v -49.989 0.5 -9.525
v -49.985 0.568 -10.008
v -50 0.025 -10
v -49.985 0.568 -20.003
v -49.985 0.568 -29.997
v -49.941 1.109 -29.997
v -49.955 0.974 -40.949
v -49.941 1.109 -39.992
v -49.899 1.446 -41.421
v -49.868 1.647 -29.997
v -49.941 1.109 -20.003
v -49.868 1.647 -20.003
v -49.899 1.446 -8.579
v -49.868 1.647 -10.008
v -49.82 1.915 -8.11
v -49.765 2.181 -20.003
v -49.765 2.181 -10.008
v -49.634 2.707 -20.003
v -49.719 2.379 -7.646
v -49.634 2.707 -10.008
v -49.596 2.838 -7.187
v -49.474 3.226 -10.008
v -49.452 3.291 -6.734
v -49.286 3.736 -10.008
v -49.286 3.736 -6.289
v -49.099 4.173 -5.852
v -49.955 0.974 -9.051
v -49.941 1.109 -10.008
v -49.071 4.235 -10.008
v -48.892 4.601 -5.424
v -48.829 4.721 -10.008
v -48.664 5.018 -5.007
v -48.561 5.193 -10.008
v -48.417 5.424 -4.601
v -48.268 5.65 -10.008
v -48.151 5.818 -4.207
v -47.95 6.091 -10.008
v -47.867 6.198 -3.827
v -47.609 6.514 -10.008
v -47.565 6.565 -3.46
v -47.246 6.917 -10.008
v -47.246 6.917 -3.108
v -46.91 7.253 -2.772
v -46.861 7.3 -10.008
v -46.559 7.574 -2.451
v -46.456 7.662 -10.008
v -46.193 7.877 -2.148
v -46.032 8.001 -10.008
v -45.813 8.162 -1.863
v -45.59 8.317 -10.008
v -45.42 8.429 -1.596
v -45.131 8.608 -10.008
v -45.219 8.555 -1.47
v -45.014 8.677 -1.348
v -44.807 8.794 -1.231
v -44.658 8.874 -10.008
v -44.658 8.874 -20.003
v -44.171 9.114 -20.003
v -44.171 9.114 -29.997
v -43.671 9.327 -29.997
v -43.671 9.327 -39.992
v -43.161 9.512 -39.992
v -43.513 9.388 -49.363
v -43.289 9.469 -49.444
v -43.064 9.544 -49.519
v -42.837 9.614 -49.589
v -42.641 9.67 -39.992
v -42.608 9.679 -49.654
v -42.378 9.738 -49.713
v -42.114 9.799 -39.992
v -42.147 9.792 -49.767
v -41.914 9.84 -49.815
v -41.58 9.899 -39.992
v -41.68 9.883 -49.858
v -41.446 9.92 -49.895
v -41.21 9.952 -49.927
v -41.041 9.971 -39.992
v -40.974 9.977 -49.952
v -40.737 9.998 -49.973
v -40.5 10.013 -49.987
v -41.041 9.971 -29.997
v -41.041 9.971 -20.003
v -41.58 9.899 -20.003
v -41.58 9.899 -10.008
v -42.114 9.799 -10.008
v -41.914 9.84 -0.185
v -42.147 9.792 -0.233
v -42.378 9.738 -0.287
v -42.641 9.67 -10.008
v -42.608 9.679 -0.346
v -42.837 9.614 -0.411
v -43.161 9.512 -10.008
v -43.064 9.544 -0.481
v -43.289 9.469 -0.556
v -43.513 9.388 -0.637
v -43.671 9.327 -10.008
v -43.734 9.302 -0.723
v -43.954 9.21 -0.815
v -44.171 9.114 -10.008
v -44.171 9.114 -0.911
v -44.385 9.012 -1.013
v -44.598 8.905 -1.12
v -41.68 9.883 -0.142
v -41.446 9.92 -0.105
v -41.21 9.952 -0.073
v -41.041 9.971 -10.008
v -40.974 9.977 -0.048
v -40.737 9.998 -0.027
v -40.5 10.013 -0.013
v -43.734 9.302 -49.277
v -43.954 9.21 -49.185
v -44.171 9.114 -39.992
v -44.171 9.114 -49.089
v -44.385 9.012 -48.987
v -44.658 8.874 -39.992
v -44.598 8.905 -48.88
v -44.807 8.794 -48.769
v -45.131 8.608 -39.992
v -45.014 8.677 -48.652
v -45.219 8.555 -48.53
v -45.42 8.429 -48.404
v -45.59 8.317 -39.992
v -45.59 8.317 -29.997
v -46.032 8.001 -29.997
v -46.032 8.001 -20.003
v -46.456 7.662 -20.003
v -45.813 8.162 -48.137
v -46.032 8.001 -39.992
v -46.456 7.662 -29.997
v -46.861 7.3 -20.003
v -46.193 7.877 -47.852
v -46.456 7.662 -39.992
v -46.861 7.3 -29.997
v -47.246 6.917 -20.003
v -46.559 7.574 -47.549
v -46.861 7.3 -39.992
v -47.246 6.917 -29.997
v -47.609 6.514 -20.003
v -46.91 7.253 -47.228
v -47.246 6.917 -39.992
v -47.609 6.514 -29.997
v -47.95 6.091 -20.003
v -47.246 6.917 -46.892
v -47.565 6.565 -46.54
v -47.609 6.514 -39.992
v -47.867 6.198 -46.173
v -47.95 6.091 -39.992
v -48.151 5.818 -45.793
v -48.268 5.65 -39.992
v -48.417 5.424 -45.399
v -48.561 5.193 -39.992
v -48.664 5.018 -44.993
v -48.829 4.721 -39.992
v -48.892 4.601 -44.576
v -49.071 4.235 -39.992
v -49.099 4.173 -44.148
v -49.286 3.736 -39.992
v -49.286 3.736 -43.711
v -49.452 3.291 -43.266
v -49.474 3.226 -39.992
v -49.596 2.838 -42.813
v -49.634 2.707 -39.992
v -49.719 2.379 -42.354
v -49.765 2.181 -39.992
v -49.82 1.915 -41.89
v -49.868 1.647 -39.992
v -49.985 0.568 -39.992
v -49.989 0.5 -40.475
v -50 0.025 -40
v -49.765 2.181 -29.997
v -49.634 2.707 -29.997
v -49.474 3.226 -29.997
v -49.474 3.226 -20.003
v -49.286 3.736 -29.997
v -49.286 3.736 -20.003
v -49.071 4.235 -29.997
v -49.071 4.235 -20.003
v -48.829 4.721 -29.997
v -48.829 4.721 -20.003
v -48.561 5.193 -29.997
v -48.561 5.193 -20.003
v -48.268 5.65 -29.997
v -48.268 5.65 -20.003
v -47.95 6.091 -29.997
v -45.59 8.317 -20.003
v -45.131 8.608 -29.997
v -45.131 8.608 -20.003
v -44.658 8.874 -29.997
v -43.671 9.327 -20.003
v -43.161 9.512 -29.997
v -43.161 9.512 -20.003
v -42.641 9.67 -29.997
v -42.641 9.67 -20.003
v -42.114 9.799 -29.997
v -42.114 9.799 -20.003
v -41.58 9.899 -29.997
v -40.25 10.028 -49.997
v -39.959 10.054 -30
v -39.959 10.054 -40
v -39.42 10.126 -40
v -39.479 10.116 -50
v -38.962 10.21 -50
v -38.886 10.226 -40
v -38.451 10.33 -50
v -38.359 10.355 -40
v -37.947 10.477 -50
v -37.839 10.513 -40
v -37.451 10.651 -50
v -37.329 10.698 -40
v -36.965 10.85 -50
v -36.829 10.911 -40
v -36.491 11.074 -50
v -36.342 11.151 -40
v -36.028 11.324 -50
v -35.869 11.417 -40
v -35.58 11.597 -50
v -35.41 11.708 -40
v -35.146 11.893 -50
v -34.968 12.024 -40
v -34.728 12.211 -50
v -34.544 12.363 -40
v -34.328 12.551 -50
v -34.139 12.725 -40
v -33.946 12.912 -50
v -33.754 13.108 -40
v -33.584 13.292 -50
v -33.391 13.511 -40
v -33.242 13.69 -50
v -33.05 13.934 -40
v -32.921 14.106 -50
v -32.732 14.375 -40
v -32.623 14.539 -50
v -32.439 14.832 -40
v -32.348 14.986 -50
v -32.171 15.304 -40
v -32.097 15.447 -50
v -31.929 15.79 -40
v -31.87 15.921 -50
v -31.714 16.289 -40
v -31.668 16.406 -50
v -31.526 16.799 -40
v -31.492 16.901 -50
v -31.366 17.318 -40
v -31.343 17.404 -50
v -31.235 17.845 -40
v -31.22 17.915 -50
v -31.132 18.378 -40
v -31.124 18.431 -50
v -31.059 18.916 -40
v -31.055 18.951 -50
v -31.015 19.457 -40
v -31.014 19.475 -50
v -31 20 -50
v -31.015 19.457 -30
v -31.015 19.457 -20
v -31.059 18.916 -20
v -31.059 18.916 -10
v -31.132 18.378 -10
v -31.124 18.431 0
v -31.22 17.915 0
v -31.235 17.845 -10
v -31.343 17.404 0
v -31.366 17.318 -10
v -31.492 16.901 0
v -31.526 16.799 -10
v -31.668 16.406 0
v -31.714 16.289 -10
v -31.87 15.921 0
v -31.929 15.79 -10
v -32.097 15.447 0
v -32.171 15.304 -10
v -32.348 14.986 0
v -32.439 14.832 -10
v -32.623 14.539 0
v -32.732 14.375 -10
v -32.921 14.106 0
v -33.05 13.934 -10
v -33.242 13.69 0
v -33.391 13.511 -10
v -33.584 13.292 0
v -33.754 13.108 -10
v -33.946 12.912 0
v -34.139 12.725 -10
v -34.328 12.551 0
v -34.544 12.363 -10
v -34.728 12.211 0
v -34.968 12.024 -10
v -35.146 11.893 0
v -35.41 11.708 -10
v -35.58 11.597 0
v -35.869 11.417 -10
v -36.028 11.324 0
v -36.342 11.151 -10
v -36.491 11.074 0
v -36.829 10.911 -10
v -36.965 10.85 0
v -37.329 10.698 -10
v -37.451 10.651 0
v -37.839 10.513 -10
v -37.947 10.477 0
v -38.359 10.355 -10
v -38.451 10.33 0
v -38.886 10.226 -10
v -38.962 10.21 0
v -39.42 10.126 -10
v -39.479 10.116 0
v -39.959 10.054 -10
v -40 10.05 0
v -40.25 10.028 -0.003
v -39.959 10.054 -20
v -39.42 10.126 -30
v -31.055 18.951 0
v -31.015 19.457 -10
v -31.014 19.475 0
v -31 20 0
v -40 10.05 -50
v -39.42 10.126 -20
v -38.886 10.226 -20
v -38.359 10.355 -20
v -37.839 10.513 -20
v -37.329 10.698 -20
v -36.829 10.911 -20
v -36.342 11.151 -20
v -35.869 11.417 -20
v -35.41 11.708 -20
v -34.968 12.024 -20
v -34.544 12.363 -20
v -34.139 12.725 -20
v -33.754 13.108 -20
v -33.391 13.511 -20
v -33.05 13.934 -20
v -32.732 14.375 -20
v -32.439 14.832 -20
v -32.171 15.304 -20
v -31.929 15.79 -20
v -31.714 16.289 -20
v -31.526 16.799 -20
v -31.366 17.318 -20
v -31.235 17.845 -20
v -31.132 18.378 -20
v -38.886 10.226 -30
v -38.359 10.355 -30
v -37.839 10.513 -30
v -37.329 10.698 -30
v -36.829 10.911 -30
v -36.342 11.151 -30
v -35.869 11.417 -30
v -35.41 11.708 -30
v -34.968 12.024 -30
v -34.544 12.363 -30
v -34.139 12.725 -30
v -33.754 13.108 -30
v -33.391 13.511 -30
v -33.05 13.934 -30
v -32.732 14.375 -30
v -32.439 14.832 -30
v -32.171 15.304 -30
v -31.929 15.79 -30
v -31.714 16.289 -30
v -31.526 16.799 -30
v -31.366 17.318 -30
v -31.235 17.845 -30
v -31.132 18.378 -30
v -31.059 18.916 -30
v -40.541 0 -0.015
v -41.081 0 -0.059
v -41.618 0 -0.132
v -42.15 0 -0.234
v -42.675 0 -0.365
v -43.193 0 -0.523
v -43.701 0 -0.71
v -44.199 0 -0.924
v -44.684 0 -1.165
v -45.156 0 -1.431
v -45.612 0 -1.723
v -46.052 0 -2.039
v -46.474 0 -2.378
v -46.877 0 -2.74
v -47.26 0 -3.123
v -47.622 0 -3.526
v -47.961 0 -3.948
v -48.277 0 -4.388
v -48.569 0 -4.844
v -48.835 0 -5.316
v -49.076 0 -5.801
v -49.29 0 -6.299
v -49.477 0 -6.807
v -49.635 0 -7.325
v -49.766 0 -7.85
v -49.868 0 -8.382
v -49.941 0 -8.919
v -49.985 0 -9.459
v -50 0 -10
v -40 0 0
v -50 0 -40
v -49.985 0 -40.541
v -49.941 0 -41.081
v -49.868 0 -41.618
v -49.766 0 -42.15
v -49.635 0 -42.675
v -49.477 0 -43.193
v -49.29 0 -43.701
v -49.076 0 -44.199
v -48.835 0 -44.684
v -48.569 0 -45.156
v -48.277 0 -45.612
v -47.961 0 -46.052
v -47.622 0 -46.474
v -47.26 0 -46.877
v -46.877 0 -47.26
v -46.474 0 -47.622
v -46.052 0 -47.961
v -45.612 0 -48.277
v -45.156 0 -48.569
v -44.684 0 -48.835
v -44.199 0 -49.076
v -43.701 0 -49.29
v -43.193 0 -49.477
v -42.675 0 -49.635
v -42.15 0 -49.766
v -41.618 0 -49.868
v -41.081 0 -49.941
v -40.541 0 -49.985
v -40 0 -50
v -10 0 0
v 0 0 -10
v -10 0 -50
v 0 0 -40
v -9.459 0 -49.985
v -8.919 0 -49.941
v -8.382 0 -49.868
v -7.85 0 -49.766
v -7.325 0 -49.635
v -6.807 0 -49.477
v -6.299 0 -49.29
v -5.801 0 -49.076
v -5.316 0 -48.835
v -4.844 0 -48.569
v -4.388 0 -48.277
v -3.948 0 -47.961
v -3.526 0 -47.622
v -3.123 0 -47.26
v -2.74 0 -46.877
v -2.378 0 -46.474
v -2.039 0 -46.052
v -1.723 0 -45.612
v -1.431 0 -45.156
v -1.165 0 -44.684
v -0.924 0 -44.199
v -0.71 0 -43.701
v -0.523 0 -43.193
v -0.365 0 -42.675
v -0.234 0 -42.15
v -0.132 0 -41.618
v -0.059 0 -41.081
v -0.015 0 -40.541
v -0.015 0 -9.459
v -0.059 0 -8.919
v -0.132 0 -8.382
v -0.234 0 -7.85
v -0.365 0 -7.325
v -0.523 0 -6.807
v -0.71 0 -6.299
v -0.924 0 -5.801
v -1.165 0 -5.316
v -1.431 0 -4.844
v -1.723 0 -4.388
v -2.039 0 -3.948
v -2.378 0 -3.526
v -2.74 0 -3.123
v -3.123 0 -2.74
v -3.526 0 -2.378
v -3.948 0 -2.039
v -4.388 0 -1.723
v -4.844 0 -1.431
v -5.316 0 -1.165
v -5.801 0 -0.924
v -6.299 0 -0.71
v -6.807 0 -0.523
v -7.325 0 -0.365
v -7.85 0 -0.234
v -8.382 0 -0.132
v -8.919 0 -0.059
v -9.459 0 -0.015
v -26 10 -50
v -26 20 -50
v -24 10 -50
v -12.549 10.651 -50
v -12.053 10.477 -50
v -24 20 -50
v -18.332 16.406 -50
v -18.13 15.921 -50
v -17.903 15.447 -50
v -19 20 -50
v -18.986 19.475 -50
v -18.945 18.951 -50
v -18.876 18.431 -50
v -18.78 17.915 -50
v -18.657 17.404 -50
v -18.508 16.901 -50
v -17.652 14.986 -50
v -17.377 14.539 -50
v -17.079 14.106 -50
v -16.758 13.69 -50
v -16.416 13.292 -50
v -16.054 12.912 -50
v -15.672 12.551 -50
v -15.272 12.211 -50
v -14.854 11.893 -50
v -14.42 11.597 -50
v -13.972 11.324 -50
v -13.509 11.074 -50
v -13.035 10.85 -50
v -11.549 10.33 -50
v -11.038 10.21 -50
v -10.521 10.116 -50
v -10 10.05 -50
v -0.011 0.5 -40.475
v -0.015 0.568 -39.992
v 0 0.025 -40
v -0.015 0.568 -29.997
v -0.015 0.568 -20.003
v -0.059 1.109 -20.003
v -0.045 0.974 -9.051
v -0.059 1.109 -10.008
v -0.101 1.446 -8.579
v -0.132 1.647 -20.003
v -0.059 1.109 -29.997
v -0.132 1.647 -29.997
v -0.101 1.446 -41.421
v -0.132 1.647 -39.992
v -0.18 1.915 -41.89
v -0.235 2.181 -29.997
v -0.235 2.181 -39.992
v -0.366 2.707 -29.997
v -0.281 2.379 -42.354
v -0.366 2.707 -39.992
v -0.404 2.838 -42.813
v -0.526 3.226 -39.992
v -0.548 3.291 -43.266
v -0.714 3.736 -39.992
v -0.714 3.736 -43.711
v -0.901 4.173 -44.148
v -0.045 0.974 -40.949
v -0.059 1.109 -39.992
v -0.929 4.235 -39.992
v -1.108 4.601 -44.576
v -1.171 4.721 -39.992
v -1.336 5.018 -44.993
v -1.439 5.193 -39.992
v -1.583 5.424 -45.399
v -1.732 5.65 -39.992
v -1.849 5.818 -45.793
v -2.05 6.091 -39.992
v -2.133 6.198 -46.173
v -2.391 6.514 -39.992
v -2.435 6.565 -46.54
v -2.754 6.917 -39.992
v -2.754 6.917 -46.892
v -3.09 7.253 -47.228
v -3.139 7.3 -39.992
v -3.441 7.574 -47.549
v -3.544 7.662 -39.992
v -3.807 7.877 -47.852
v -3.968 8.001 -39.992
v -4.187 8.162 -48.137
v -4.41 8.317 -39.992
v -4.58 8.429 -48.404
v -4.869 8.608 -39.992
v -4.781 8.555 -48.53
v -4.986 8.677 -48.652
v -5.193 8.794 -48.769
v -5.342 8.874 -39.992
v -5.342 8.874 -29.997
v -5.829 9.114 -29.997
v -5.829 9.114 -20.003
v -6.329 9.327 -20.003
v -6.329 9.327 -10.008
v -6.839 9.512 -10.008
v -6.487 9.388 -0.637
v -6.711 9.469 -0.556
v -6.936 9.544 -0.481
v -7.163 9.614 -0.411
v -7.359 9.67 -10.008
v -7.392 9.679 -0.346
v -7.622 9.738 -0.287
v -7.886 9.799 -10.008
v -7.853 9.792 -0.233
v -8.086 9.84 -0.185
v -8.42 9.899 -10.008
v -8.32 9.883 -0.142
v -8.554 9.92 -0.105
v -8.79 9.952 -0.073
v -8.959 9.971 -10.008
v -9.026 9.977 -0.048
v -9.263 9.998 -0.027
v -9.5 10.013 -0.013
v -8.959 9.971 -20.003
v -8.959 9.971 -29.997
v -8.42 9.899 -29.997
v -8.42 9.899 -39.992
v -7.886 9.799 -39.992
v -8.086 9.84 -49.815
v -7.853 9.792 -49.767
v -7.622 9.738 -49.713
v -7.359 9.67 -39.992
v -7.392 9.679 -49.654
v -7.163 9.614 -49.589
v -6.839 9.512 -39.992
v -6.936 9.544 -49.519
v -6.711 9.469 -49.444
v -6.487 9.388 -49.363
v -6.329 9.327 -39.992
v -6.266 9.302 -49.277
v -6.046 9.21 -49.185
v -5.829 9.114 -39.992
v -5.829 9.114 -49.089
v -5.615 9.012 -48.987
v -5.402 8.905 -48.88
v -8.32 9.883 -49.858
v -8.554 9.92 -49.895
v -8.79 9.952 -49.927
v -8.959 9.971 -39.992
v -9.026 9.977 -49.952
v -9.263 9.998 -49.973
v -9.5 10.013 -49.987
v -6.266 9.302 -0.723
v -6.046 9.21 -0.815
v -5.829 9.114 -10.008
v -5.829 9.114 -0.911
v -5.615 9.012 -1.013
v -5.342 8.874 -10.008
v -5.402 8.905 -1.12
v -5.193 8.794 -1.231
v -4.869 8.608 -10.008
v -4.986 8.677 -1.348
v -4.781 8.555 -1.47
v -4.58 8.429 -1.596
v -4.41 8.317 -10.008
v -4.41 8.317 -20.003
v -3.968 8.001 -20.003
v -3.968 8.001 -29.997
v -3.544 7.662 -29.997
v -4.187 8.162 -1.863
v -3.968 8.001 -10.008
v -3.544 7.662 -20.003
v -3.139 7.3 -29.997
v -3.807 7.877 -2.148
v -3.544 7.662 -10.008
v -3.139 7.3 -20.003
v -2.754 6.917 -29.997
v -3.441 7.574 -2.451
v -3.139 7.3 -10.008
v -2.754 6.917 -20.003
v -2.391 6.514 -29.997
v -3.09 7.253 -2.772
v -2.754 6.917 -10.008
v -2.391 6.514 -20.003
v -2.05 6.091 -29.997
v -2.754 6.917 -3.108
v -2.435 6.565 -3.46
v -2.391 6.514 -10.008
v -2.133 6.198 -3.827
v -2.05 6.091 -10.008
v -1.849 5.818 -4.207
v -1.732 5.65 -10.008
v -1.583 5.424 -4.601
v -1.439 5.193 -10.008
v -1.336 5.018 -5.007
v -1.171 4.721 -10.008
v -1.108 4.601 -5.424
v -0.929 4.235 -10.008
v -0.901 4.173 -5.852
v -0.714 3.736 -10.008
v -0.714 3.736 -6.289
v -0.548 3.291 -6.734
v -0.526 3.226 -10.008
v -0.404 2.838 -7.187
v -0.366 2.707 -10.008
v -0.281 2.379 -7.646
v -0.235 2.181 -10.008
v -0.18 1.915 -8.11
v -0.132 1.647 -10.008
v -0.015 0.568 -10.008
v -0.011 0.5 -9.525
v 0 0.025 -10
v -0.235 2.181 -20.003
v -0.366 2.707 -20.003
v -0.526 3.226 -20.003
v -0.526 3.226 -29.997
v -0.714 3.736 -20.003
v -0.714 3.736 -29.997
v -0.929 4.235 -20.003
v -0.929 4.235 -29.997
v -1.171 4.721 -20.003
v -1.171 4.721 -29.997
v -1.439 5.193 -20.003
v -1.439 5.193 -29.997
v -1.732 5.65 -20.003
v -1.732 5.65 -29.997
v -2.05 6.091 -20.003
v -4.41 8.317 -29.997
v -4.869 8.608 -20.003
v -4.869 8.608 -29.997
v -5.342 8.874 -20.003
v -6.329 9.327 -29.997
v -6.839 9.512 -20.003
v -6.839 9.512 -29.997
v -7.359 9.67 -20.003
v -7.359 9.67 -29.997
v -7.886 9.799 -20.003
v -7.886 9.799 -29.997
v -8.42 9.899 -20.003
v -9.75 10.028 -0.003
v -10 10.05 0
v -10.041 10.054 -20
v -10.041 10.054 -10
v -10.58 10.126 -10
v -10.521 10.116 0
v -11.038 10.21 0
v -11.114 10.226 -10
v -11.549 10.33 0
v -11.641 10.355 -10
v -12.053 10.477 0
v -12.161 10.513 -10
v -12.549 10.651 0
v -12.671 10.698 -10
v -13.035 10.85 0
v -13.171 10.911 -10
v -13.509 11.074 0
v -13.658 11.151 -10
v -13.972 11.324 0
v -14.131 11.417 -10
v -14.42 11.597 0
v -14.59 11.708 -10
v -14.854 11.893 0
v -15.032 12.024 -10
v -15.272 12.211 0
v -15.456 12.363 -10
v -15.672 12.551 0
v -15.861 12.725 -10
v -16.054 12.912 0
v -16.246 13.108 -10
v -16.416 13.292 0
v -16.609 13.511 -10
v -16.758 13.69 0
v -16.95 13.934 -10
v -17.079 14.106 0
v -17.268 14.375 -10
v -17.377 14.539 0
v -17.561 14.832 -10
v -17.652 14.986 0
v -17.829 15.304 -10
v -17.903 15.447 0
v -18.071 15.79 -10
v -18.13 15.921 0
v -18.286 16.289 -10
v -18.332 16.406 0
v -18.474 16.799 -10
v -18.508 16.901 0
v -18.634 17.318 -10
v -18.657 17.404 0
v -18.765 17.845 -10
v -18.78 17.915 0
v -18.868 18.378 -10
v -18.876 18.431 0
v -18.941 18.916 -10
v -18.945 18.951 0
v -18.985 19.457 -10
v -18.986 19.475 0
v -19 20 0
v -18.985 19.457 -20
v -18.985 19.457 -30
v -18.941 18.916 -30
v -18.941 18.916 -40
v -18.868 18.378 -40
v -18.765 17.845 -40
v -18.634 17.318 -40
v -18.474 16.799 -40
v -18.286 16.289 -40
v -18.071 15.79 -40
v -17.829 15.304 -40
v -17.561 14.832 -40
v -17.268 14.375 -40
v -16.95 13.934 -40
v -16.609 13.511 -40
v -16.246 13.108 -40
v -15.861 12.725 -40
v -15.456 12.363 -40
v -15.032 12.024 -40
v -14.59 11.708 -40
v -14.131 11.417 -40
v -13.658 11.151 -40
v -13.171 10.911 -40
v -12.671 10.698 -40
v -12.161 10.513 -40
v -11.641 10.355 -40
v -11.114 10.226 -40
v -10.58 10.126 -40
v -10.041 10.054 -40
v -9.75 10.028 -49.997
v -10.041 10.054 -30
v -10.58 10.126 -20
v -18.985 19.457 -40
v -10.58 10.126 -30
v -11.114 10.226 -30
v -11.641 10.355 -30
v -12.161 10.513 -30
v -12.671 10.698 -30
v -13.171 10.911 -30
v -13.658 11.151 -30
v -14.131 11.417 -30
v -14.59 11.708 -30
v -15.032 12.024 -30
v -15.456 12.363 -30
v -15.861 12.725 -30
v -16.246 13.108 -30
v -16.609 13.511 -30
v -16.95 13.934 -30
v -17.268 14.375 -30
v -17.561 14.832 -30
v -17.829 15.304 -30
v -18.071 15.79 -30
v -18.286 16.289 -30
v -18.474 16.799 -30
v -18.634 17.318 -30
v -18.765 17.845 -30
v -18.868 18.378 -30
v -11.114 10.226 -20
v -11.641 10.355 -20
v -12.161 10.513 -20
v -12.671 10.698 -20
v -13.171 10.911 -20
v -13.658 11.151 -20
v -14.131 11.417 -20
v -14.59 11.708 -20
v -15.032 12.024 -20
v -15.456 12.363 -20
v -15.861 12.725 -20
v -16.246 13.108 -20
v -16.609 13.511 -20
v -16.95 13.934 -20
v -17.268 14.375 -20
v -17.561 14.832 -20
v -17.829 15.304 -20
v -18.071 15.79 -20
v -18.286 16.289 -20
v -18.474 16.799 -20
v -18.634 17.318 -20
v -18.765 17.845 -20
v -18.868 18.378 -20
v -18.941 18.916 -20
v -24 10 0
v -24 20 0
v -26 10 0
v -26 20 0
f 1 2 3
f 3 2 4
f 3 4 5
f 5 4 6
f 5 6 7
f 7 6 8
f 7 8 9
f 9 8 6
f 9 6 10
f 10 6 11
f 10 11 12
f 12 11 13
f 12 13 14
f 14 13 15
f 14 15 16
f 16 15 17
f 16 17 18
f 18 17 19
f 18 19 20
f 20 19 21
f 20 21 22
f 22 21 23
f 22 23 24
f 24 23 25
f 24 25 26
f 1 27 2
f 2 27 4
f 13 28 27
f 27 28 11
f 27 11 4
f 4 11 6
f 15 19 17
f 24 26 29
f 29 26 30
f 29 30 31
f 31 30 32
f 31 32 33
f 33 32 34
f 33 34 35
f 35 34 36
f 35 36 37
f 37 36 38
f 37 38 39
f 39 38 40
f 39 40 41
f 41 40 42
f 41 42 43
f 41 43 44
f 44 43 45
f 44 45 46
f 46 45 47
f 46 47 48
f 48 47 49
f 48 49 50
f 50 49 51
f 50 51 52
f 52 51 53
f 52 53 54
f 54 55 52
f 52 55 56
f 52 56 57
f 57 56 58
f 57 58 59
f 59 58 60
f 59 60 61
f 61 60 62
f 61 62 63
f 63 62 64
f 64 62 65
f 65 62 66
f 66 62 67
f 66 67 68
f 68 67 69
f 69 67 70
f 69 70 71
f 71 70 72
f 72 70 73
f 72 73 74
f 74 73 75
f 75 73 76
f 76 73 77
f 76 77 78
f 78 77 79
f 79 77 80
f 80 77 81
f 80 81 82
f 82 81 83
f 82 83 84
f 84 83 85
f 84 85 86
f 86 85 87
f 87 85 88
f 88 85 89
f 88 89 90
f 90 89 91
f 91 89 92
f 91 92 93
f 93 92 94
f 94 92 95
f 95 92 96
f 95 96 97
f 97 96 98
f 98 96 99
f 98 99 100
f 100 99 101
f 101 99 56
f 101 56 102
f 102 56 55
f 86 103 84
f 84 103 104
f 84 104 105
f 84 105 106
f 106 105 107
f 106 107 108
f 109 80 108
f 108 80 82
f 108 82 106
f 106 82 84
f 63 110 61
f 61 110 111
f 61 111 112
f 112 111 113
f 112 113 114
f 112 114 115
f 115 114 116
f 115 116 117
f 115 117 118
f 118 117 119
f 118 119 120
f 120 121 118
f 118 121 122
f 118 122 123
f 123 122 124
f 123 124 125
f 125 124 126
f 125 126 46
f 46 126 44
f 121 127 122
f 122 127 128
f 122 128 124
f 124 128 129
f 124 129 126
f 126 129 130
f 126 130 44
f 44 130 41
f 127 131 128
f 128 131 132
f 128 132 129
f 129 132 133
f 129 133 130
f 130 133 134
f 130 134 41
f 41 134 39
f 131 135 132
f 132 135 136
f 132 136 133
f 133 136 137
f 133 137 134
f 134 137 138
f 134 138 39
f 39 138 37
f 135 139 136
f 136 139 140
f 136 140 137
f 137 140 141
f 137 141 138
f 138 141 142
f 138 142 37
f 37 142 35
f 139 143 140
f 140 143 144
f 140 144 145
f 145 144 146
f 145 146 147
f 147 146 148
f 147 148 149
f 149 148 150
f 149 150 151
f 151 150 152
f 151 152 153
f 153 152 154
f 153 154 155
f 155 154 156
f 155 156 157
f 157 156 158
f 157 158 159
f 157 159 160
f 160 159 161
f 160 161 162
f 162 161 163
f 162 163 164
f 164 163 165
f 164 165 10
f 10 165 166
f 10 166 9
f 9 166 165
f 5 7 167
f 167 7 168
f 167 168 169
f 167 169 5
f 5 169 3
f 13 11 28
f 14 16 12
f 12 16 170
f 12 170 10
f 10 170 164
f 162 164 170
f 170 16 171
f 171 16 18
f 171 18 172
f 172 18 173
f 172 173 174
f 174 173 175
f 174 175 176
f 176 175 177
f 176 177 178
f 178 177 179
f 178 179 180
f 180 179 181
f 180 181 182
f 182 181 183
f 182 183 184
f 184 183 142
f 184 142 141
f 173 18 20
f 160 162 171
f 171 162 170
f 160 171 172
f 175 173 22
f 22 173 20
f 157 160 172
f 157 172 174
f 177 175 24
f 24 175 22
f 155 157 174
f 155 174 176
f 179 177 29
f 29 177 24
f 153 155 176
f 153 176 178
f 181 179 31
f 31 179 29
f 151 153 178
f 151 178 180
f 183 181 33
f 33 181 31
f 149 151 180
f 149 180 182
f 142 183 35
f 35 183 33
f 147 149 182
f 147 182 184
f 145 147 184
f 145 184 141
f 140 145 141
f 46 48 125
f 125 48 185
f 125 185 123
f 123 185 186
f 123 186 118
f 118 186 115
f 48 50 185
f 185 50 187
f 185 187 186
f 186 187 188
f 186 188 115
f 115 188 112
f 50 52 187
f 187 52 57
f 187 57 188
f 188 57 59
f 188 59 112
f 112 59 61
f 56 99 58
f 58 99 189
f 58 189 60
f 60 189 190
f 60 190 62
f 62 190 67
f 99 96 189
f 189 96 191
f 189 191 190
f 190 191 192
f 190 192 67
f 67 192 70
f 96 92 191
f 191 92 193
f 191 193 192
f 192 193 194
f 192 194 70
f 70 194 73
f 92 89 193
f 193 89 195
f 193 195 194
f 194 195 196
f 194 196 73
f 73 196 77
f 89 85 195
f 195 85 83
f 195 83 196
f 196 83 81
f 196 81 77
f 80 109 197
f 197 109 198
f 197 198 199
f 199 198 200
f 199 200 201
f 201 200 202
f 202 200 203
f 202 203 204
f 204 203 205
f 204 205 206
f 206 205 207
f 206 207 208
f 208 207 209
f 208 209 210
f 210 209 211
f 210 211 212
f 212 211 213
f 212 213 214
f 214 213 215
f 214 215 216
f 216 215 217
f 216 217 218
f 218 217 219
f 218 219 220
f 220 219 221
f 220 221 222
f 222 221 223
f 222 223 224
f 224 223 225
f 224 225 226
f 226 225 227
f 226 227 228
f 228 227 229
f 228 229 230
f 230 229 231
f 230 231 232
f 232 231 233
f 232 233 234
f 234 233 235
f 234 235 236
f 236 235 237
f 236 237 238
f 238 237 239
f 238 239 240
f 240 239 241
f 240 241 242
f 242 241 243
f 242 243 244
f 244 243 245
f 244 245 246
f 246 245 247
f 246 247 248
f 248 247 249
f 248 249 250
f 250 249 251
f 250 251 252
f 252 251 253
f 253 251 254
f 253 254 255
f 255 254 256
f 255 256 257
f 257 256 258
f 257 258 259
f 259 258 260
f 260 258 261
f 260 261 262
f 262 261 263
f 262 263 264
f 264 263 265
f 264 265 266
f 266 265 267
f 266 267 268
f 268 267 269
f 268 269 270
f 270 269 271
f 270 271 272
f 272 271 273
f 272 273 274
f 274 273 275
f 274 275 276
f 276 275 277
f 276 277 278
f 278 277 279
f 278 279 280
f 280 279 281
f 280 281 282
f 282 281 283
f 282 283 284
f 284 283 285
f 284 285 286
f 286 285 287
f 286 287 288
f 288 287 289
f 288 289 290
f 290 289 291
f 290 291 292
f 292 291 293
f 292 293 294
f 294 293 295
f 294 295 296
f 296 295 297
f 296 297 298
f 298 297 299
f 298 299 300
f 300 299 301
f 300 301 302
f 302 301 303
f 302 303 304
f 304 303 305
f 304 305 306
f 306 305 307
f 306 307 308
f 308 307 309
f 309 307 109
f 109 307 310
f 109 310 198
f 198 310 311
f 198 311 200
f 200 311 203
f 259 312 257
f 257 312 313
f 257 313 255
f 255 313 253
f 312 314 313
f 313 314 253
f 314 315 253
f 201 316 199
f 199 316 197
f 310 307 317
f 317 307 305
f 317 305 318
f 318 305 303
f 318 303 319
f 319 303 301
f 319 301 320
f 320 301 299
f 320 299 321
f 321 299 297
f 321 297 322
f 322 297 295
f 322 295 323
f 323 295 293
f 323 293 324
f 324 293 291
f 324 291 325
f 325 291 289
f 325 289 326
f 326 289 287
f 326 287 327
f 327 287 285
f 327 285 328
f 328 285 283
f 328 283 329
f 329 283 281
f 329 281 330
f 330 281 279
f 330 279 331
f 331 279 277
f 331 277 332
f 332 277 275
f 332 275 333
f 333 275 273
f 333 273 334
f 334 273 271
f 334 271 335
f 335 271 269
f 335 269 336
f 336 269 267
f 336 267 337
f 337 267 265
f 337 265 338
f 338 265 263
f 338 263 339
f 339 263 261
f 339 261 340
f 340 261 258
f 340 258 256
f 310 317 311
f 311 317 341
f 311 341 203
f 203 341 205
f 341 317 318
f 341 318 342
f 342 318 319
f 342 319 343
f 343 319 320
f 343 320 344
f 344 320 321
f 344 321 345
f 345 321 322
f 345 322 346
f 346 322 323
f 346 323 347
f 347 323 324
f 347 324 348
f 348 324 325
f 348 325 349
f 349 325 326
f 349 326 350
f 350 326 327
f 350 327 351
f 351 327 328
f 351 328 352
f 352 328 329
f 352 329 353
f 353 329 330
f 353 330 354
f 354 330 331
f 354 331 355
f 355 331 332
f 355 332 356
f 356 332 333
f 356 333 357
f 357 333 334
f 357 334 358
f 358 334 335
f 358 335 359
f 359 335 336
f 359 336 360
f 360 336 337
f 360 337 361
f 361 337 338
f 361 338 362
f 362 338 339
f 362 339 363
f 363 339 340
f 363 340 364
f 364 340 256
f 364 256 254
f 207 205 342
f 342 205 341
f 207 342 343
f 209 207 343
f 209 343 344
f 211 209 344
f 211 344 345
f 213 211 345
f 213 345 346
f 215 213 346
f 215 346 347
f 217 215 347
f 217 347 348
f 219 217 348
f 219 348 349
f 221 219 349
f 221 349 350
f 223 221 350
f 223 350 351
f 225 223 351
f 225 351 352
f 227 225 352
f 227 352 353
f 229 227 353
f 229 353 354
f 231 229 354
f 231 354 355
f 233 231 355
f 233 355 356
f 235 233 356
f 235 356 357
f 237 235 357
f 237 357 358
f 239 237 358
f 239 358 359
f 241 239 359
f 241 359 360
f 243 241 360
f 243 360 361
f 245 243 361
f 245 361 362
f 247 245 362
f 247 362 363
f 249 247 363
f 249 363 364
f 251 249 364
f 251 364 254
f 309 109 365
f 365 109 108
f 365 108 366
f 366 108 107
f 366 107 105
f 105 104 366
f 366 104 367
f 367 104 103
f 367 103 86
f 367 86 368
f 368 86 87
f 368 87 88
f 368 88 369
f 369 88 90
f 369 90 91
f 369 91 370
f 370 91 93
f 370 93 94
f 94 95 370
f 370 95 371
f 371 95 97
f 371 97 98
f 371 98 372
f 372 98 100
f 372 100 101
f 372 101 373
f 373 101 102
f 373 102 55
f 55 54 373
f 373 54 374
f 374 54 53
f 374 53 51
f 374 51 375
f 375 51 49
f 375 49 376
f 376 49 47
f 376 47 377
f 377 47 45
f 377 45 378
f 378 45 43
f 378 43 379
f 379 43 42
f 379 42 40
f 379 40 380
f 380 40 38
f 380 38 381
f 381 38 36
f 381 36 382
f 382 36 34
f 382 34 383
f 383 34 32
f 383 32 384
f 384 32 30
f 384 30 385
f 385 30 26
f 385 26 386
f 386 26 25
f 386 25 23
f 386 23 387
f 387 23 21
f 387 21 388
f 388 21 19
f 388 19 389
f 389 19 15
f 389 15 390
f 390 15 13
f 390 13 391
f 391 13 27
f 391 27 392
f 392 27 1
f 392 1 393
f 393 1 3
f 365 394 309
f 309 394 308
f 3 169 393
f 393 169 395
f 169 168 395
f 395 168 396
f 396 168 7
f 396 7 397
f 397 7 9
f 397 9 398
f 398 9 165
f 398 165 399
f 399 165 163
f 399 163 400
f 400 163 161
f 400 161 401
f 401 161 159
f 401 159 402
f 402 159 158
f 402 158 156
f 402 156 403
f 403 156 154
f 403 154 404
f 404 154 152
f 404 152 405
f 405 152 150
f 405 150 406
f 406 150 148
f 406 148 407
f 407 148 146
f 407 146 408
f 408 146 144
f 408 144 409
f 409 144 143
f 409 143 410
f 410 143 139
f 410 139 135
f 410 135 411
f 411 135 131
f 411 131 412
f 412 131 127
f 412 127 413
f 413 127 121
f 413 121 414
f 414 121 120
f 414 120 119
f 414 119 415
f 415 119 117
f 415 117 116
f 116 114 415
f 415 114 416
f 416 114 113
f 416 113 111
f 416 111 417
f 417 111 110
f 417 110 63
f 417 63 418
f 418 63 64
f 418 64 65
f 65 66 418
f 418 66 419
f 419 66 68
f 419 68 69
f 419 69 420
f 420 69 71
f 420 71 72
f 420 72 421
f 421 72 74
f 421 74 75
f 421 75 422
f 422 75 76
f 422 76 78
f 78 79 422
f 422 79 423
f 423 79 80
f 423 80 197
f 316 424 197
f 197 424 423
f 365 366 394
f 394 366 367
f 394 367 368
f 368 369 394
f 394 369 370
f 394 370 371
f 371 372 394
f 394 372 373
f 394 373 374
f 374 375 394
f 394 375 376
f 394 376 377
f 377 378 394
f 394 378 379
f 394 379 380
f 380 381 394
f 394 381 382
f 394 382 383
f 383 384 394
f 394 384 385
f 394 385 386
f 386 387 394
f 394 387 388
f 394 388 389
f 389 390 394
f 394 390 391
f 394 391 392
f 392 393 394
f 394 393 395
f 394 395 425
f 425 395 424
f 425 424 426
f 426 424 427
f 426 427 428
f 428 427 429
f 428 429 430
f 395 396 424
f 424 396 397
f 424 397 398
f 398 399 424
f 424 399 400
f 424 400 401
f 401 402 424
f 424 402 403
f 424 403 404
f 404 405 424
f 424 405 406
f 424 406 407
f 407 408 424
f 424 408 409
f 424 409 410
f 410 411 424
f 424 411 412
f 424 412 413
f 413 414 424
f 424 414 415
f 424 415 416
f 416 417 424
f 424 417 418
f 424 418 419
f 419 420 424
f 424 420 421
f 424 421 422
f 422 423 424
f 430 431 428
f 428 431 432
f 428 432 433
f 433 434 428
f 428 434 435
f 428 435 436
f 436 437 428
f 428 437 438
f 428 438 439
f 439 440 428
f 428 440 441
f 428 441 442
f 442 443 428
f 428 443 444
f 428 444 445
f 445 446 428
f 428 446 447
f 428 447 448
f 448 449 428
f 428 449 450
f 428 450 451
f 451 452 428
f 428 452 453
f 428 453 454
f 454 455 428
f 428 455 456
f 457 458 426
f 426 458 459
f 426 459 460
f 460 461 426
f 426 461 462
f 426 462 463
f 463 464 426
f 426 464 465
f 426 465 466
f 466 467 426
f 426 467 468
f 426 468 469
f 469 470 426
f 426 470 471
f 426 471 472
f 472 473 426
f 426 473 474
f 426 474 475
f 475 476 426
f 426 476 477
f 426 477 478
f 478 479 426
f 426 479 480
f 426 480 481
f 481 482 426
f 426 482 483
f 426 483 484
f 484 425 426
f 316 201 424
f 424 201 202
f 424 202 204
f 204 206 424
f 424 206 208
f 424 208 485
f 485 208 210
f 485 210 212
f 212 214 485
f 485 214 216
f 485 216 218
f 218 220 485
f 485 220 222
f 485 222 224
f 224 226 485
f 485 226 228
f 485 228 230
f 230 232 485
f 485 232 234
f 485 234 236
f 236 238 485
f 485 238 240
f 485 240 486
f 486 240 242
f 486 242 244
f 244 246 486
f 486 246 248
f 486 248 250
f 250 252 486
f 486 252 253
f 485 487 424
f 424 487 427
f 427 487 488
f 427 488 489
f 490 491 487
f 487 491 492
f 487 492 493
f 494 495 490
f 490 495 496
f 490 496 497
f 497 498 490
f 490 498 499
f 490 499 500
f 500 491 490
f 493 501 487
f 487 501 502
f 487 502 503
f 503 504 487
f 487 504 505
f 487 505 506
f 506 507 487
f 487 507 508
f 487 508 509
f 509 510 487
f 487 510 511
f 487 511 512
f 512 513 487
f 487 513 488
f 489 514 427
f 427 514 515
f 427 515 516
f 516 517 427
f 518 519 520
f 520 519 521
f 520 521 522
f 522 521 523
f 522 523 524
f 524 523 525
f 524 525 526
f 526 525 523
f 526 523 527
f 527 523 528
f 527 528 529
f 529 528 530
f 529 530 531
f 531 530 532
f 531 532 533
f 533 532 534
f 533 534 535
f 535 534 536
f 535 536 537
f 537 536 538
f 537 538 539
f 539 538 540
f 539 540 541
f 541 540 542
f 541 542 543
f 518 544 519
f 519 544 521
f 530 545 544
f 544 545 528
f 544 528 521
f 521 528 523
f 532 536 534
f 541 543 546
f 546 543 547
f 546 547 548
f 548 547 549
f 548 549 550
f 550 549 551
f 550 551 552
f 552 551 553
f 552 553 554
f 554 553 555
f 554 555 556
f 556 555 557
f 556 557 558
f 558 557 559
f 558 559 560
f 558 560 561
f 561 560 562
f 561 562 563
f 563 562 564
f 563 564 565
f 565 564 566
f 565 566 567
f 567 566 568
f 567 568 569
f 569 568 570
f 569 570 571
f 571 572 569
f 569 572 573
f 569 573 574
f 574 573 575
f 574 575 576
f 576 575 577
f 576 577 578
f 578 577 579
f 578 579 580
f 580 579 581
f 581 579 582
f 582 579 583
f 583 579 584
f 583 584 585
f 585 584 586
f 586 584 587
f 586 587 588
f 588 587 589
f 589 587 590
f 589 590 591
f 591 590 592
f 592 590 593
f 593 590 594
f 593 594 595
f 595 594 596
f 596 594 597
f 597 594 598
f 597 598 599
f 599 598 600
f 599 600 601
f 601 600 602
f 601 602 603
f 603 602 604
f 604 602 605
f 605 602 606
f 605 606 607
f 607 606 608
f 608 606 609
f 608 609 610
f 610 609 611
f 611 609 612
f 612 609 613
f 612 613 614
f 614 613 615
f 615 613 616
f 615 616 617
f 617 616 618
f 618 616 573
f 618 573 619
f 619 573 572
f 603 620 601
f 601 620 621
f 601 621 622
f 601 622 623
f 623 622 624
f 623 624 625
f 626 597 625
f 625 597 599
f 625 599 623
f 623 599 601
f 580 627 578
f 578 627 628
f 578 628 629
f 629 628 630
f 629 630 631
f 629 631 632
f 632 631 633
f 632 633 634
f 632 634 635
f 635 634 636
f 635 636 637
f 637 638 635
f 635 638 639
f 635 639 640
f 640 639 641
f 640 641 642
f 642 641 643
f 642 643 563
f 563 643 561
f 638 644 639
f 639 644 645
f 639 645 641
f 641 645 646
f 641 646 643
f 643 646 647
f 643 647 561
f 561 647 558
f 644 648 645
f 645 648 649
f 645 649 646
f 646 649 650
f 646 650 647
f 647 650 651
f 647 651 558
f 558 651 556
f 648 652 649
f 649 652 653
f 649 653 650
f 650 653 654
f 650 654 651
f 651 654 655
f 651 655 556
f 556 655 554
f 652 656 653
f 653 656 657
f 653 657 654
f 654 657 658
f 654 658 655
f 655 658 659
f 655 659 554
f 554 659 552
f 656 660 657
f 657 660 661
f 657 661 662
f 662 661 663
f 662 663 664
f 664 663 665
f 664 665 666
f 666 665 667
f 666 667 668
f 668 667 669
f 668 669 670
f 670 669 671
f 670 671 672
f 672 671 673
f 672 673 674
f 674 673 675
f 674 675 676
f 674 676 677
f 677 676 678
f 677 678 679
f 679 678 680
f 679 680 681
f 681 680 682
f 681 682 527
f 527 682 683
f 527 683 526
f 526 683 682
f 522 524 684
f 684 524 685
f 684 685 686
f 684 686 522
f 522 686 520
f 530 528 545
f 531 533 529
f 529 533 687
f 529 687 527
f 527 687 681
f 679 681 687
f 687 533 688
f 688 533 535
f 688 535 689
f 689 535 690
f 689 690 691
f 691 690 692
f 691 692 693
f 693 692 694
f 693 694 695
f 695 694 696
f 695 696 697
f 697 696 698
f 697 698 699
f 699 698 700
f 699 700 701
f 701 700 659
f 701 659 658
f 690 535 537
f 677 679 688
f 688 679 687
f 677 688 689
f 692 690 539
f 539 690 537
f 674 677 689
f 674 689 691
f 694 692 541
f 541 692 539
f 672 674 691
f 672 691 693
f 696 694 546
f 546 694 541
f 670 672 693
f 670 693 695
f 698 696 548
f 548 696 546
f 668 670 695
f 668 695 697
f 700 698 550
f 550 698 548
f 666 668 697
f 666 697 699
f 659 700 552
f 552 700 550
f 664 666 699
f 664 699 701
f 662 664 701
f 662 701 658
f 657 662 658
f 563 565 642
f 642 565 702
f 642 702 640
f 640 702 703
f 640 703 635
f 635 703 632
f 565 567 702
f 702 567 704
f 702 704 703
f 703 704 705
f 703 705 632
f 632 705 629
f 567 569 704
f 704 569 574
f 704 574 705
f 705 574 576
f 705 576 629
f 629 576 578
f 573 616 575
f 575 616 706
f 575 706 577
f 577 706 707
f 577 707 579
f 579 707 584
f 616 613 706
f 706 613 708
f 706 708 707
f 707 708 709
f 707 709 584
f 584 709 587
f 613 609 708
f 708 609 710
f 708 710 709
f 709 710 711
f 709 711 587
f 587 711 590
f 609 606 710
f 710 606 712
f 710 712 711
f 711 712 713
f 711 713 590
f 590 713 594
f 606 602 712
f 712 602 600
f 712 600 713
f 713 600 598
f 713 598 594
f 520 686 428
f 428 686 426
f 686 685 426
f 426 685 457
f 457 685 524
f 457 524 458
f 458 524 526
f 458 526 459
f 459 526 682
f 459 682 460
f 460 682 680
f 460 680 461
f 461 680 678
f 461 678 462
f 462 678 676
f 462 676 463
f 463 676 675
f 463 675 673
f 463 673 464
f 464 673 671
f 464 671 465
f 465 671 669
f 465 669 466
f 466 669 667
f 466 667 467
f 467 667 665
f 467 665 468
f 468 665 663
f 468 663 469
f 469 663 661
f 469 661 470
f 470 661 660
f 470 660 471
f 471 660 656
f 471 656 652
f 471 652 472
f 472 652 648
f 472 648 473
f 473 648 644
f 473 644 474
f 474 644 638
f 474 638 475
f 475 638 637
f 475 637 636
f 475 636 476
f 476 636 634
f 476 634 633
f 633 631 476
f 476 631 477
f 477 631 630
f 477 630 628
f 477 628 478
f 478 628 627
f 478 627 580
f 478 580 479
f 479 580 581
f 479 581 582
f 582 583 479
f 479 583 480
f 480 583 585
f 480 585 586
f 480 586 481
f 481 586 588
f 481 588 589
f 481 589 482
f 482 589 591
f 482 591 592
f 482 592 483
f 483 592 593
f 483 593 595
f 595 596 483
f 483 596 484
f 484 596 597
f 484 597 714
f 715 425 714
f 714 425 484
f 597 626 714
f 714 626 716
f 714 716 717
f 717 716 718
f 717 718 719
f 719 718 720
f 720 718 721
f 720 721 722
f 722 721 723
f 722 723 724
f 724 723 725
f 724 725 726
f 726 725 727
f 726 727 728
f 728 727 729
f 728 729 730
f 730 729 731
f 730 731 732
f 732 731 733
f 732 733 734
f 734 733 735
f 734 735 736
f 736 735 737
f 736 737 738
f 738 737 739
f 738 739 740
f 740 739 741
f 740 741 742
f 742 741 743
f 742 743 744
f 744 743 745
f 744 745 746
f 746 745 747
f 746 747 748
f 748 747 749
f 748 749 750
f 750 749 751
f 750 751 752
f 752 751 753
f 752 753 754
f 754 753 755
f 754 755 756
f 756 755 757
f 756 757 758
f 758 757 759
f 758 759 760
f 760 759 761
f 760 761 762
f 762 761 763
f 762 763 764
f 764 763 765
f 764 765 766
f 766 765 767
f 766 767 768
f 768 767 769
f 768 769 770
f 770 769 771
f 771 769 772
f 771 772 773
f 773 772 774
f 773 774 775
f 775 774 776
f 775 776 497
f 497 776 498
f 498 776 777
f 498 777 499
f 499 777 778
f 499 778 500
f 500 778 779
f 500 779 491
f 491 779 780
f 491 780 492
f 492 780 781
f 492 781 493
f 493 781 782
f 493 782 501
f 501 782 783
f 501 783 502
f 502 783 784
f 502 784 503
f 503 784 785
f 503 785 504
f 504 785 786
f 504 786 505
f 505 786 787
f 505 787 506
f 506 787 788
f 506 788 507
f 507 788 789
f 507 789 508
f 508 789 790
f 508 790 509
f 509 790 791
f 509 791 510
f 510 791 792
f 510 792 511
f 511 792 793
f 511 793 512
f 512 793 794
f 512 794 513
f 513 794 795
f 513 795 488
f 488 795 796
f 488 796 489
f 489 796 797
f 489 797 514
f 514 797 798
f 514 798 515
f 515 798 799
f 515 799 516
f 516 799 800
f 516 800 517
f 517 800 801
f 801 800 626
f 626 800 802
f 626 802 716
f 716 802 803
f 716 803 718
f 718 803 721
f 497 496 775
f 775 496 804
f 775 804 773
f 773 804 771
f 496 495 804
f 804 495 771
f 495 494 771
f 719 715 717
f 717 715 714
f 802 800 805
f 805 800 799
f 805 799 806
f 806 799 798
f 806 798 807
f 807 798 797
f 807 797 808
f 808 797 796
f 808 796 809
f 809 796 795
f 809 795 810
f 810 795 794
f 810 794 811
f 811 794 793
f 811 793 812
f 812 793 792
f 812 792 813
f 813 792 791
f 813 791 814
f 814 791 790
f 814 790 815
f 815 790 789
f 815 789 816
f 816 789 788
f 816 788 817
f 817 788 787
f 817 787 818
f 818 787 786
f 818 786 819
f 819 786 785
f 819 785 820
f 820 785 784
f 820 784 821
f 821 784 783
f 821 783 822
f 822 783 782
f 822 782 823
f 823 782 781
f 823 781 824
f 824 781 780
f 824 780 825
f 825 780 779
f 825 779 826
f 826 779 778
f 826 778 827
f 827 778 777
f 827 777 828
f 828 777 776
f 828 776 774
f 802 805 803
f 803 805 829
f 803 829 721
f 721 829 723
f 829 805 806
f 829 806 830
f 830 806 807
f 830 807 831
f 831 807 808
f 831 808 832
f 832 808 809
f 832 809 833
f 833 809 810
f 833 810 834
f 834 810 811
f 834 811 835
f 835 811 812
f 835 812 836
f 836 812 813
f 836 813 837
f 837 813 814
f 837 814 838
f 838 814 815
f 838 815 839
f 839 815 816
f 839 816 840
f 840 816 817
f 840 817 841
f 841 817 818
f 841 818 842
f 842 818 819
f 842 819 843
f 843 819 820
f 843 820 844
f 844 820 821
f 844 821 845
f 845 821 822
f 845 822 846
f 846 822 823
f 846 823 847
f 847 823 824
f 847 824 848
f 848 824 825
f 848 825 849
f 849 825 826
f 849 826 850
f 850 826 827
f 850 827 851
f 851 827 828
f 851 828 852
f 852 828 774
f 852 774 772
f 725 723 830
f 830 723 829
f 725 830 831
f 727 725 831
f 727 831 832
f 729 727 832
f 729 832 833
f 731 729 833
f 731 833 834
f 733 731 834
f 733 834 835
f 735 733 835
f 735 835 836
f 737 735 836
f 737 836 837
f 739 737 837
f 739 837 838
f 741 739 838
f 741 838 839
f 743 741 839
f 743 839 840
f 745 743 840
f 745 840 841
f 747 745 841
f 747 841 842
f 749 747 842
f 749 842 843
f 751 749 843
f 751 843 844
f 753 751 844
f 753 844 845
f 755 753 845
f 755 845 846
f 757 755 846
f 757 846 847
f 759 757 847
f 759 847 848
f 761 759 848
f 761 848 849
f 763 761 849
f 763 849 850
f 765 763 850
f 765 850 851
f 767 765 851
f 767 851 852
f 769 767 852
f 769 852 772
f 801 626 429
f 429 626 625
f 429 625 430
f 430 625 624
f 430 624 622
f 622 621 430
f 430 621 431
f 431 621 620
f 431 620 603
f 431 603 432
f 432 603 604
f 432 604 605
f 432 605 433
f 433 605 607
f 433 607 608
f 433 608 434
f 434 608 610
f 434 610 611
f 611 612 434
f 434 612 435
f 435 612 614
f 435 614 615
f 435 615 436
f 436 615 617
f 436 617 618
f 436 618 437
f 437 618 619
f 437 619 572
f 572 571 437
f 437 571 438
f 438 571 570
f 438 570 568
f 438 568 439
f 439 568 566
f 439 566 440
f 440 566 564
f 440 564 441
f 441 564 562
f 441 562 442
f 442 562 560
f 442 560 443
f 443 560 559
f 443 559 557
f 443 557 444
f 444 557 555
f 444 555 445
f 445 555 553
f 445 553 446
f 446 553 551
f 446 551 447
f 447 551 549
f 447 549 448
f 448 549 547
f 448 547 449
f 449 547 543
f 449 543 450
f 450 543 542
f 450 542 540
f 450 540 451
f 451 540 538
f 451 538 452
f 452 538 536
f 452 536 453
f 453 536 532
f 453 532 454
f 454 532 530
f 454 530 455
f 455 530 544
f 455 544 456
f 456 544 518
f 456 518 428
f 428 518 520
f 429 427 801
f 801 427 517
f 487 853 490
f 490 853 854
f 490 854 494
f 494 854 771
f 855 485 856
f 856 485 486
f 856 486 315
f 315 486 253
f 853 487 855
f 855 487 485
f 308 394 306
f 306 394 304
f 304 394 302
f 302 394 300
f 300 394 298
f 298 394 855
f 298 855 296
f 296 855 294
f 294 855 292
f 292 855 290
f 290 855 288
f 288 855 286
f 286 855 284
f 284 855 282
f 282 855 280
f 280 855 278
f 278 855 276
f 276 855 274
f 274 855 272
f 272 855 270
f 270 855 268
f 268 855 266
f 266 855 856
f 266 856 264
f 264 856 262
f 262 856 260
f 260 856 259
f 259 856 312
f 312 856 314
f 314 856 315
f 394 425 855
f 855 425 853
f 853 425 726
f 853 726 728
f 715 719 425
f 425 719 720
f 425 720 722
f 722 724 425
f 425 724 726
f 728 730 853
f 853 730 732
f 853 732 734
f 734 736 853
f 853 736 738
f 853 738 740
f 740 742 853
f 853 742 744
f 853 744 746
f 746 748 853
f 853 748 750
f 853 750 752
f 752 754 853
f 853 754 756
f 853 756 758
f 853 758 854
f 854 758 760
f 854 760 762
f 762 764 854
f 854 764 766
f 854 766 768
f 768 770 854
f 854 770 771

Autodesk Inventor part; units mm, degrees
ref_plane "YZ Plane" through (0, 0, 0) normal (1, 0, 0) x (0, 1, 0)
ref_plane "XZ Plane" through (0, 0, 0) normal (0, 1, 0) x (-1, 0, 0)
ref_plane "XY Plane" through (0, 0, 0) normal (0, 0, 1) x (1, 0, 0)
sketch "Sketch1" plane through (0, 0, 0) normal (0, 1, 0) x (-1, 0, 0)
  line L0 (0, 0) -> (50, 0)
  line L1 (50, 0) -> (50, -50)
  line L2 (50, -50) -> (0, -50)
  line L3 (0, -50) -> (0, 0)
  dimension "d0" = 50
  dimension "d1" = 50
extrude "Extrusion1" add sketch "Sketch1" along normal blind 10
sketch "Sketch2" plane through (0, 10, 0) normal (0, 1, 0) x (1, 0, 0)
  line L0 (-31, 0) -> (-26, 0)
  line L1 (-26, 0) -> (-26, 50)
  line L2 (-26, 50) -> (-31, 50)
  line L3 (-31, 50) -> (-31, 0)
  line L4 (-50, 0) -> (0, 0) projected
  line L5 (0, 50) -> (-50, 50) projected
  line L6 (-19, 0) -> (-24, 0)
  line L7 (-24, 0) -> (-24, 50)
  line L8 (-24, 50) -> (-19, 50)
  line L9 (-19, 50) -> (-19, 0)
  line L10 (0, 0) -> (0, 50) projected
  dimension "d7" = 5
  dimension "d8" = 5
  dimension "d9" = 2
  dimension "d10" = 19
extrude "Extrusion2" add sketch "Sketch2" along normal blind 10 contours L3 L2 L1 L0 | L7 L5 L9 L4
fillet "Fillet1" radius 10 2 edges at (-19, 10, -25) (-31, 10, -25)
fillet "Fillet2" radius 10 6 edges at (0, 10, -25) (0, 5, -50) (-50, 5, -50) (-50, 5, 0) (0, 5, 0) (-50, 10, -25)
properties part number "CalibrationWallMounts"
